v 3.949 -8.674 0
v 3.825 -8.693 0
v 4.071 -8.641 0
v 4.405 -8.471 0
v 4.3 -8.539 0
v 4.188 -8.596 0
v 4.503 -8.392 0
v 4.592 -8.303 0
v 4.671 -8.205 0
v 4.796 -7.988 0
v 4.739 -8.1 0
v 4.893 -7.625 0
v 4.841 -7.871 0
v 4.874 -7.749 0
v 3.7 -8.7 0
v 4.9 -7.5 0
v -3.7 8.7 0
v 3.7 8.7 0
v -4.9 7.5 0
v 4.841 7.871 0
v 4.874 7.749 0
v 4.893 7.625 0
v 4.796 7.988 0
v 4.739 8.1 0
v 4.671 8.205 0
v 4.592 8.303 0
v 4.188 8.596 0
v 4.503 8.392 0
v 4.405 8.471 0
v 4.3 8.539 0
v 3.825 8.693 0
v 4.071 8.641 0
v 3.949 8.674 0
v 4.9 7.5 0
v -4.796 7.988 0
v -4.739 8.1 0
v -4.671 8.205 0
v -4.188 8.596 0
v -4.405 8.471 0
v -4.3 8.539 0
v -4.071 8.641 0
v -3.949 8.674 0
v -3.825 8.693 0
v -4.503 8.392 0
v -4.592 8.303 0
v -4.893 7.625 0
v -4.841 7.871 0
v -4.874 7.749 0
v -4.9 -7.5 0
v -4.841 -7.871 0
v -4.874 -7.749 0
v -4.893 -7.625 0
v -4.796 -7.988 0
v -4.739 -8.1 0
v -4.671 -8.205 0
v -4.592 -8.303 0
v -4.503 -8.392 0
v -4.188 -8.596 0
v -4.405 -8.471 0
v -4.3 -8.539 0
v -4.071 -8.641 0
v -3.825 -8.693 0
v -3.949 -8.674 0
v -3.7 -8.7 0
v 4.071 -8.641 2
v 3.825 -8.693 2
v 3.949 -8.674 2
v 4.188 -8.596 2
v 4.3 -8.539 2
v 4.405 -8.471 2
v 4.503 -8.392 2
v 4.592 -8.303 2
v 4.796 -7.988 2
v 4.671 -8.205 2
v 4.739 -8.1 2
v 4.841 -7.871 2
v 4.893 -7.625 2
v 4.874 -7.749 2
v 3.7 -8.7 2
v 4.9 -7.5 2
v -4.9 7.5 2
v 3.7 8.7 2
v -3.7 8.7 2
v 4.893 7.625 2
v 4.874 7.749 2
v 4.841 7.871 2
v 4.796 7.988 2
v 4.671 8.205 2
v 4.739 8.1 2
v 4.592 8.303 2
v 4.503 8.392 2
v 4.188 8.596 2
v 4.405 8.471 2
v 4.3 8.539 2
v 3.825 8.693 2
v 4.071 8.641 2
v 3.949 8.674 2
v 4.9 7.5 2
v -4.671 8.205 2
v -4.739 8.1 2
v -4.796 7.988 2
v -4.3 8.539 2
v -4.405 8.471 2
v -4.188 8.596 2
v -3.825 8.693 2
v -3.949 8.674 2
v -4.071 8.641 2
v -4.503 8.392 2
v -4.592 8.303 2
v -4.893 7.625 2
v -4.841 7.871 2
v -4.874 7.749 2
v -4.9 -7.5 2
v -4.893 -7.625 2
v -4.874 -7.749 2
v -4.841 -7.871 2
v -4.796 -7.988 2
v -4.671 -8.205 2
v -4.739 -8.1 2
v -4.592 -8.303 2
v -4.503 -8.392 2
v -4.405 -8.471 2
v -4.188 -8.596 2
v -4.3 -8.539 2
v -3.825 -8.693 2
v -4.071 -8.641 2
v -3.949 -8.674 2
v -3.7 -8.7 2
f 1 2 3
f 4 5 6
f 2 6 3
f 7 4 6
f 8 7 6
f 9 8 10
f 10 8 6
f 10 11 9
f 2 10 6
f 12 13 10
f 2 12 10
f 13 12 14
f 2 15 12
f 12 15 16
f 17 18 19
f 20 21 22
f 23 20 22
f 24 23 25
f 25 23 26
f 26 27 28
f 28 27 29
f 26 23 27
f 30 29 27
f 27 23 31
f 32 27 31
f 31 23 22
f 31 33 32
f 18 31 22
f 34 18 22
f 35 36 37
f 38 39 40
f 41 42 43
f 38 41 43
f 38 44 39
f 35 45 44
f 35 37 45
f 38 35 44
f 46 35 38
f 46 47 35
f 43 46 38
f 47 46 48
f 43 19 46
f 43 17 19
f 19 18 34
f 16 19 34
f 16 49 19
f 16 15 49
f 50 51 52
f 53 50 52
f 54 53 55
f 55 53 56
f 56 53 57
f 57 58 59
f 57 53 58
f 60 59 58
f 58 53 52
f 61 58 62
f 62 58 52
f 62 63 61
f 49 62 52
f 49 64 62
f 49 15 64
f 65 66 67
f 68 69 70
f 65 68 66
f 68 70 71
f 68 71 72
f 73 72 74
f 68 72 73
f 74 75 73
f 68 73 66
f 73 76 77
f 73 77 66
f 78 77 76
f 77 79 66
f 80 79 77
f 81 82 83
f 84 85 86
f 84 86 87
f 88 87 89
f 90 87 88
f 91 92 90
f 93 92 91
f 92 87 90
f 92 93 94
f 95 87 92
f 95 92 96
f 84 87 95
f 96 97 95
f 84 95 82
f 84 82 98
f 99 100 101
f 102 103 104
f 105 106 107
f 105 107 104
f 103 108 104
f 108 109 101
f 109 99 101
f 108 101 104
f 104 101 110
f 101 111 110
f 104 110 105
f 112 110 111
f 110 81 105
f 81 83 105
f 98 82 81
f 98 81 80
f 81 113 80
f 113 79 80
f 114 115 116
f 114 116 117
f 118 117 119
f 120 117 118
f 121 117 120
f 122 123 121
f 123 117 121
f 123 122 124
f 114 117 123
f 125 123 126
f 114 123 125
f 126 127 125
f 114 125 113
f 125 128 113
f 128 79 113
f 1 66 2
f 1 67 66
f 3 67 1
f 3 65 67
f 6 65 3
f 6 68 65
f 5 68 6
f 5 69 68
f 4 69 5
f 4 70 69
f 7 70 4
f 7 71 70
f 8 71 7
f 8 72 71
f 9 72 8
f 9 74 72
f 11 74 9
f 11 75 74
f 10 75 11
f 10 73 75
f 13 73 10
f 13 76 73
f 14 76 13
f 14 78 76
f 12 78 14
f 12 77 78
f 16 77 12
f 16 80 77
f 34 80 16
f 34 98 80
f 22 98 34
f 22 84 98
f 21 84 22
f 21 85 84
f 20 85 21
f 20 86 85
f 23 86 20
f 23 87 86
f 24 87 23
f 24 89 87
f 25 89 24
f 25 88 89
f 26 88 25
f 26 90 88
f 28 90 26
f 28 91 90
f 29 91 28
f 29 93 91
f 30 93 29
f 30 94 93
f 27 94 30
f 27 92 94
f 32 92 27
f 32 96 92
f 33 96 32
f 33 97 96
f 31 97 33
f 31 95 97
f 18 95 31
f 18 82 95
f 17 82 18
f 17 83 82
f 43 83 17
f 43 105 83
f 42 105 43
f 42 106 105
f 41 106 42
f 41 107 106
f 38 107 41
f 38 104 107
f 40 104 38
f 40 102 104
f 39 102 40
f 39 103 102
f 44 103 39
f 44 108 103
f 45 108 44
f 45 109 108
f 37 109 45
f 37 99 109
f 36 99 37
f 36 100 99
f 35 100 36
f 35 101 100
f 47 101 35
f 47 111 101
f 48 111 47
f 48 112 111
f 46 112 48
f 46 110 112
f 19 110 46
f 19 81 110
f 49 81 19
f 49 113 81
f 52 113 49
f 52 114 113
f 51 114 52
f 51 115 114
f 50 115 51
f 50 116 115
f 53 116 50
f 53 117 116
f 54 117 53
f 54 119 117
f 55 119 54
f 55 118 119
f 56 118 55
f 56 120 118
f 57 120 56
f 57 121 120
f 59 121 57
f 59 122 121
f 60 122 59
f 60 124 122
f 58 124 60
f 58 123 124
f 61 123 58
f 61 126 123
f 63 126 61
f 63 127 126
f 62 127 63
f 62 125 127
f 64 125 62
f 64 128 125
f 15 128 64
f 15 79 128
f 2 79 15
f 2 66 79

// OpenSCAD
// Medify - Magnet pocket flat cover

$fn = 60;

cover_w = 17.4;
cover_d = 9.8;
cover_t = 2;

corner_r = 1.2;

module rounded_cover() {

    linear_extrude(height = cover_t)

        offset(r = corner_r)
            offset(delta = -corner_r)

                square([cover_d, cover_w], center = true);
}

module MagnetPocketCover1() {
    rounded_cover();
}

MagnetPocketCover1();
